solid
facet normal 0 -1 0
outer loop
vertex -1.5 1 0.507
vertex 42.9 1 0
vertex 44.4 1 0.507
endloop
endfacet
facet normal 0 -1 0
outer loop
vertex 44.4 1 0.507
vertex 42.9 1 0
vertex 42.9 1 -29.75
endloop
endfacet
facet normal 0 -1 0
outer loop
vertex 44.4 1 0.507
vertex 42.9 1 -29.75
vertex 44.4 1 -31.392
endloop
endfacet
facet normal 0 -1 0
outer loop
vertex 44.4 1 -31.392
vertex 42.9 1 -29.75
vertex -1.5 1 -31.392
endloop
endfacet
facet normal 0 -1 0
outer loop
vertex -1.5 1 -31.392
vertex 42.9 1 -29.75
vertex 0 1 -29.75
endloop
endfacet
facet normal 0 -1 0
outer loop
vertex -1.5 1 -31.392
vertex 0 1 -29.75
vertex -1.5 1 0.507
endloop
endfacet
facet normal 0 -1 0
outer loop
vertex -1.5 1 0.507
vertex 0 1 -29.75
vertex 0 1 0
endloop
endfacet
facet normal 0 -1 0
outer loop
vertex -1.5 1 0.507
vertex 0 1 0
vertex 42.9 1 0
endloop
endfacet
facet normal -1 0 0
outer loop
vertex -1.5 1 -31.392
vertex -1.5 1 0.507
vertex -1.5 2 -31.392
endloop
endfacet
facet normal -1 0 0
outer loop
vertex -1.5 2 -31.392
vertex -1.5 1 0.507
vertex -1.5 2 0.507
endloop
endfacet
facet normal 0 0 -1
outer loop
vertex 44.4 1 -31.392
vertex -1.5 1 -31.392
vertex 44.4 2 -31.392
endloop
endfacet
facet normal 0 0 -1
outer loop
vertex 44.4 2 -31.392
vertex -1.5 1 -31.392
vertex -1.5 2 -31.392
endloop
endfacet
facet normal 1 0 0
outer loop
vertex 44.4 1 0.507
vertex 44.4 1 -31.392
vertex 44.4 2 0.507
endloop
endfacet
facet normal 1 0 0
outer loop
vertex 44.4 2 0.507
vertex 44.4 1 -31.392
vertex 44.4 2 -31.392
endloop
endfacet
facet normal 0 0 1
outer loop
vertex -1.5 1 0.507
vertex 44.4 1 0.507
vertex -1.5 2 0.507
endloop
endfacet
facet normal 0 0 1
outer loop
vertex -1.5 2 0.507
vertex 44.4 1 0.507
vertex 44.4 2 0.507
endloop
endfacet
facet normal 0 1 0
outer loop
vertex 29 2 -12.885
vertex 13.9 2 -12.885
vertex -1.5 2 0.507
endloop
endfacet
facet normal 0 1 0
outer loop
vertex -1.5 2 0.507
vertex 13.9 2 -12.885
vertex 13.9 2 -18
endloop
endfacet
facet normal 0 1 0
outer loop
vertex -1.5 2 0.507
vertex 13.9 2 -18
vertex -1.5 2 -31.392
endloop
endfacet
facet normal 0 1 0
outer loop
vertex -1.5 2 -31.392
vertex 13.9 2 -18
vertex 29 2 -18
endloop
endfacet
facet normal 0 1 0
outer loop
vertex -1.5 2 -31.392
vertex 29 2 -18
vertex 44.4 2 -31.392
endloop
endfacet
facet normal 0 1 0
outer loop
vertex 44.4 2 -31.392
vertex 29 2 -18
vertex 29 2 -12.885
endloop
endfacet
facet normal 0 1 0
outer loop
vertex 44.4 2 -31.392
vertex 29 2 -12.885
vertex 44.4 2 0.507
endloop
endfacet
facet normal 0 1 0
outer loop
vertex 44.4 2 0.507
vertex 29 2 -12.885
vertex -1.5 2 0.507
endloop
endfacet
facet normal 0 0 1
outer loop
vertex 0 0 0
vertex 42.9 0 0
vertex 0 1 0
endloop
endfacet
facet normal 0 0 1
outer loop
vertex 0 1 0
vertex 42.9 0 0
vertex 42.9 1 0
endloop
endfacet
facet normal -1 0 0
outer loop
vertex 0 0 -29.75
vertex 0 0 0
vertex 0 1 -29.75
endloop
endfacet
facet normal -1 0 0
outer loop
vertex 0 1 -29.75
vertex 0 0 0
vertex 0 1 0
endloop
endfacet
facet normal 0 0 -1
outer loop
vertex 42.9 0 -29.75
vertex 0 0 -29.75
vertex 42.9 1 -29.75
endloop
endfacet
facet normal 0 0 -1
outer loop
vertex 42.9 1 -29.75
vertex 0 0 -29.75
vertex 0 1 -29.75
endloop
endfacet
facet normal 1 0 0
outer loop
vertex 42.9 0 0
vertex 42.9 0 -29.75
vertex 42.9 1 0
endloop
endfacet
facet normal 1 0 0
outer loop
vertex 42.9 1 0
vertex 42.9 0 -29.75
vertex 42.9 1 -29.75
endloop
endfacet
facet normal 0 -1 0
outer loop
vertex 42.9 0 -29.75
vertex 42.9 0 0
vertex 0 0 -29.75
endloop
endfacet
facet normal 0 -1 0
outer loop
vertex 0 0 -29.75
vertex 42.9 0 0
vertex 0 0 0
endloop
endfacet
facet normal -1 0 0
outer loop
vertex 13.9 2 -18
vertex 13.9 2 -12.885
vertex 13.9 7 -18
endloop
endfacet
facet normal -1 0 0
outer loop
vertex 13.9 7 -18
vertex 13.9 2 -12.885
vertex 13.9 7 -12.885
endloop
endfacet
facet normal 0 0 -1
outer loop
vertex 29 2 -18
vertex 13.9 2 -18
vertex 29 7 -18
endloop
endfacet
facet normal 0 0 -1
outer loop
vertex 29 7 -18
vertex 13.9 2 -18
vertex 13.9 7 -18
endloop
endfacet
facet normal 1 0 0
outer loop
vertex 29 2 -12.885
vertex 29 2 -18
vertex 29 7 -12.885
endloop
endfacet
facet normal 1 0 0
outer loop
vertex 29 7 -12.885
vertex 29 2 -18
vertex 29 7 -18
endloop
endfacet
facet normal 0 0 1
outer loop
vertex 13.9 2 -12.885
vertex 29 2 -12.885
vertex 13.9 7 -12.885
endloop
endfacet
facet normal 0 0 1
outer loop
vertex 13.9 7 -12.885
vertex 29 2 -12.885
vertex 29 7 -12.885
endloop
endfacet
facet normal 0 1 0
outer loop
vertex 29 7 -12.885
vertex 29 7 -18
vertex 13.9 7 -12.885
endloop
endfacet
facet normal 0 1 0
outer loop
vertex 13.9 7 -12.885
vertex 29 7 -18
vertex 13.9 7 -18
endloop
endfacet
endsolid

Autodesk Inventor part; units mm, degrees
ref_plane "YZ Plane" through (0, 0, 0) normal (1, 0, 0) x (0, 1, 0)
ref_plane "XZ Plane" through (0, 0, 0) normal (0, 1, 0) x (-1, 0, 0)
ref_plane "XY Plane" through (0, 0, 0) normal (0, 0, 1) x (1, 0, 0)
sketch "Sketch1" plane through (0, 0, 0) normal (0, 1, 0) x (-1, 0, 0)
  line L0 (0, 0) -> (-42.9, 0)
  line L1 (-42.9, 0) -> (-42.9, -29.75)
  line L2 (-42.9, -29.75) -> (0, -29.75)
  line L3 (0, -29.75) -> (0, 0)
  dimension "d0" = 42.9
  dimension "d1" = 29.75
extrude "Extrusion1" add sketch "Sketch1" along normal blind 1
sketch "Sketch2" plane through (0, 1, 0) normal (0, 1, 0) x (1, 0, 0)
  line L0 (42.9, 0) -> (42.9, 29.75) projected
  line L1 (42.9, 29.75) -> (0, 29.75) projected
  line L2 (-1.5, 31.392) -> (44.4, 31.392)
  line L3 (44.4, 31.392) -> (44.4, -0.507)
  line L4 (44.4, -0.507) -> (-1.5, -0.507)
  line L5 (-1.5, -0.507) -> (-1.5, 31.392)
  point P0 (0, 0)
extrude "Extrusion2" add sketch "Sketch2" along normal blind 1
sketch "Sketch3" plane through (0, 2, 0) normal (0, 1, 0) x (1, 0, 0)
  line L0 (-1.5, -0.507) -> (44.4, -0.507) projected
  line L1 (44.4, 31.392) -> (-1.5, 31.392) projected
  line L2 (-1.5, -0.507) -> (44.4, 31.392)
  line L3 (44.4, -0.507) -> (44.4, 31.392) projected
  line L4 (44.4, -0.507) -> (-1.5, 31.392)
  line L5 (13.9, 12.885) -> (29, 12.885)
  line L6 (29, 12.885) -> (29, 18)
  line L7 (29, 18) -> (13.9, 18)
  line L8 (13.9, 18) -> (13.9, 12.885)
  line L9 (13.9, 12.885) -> (29, 18) construction
  line L10 (29, 12.885) -> (13.9, 18) construction
  point P0 (0, 0)
  point P1 (21.45, 15.4425)
extrude "Extrusion3" add sketch "Sketch3" along normal blind 5 contours L5 L8 L7 L4 L2 | L2 L4 L5 | L4 L2 L7 L6 L5 | L4 L7 L2
properties part number "Lid"
